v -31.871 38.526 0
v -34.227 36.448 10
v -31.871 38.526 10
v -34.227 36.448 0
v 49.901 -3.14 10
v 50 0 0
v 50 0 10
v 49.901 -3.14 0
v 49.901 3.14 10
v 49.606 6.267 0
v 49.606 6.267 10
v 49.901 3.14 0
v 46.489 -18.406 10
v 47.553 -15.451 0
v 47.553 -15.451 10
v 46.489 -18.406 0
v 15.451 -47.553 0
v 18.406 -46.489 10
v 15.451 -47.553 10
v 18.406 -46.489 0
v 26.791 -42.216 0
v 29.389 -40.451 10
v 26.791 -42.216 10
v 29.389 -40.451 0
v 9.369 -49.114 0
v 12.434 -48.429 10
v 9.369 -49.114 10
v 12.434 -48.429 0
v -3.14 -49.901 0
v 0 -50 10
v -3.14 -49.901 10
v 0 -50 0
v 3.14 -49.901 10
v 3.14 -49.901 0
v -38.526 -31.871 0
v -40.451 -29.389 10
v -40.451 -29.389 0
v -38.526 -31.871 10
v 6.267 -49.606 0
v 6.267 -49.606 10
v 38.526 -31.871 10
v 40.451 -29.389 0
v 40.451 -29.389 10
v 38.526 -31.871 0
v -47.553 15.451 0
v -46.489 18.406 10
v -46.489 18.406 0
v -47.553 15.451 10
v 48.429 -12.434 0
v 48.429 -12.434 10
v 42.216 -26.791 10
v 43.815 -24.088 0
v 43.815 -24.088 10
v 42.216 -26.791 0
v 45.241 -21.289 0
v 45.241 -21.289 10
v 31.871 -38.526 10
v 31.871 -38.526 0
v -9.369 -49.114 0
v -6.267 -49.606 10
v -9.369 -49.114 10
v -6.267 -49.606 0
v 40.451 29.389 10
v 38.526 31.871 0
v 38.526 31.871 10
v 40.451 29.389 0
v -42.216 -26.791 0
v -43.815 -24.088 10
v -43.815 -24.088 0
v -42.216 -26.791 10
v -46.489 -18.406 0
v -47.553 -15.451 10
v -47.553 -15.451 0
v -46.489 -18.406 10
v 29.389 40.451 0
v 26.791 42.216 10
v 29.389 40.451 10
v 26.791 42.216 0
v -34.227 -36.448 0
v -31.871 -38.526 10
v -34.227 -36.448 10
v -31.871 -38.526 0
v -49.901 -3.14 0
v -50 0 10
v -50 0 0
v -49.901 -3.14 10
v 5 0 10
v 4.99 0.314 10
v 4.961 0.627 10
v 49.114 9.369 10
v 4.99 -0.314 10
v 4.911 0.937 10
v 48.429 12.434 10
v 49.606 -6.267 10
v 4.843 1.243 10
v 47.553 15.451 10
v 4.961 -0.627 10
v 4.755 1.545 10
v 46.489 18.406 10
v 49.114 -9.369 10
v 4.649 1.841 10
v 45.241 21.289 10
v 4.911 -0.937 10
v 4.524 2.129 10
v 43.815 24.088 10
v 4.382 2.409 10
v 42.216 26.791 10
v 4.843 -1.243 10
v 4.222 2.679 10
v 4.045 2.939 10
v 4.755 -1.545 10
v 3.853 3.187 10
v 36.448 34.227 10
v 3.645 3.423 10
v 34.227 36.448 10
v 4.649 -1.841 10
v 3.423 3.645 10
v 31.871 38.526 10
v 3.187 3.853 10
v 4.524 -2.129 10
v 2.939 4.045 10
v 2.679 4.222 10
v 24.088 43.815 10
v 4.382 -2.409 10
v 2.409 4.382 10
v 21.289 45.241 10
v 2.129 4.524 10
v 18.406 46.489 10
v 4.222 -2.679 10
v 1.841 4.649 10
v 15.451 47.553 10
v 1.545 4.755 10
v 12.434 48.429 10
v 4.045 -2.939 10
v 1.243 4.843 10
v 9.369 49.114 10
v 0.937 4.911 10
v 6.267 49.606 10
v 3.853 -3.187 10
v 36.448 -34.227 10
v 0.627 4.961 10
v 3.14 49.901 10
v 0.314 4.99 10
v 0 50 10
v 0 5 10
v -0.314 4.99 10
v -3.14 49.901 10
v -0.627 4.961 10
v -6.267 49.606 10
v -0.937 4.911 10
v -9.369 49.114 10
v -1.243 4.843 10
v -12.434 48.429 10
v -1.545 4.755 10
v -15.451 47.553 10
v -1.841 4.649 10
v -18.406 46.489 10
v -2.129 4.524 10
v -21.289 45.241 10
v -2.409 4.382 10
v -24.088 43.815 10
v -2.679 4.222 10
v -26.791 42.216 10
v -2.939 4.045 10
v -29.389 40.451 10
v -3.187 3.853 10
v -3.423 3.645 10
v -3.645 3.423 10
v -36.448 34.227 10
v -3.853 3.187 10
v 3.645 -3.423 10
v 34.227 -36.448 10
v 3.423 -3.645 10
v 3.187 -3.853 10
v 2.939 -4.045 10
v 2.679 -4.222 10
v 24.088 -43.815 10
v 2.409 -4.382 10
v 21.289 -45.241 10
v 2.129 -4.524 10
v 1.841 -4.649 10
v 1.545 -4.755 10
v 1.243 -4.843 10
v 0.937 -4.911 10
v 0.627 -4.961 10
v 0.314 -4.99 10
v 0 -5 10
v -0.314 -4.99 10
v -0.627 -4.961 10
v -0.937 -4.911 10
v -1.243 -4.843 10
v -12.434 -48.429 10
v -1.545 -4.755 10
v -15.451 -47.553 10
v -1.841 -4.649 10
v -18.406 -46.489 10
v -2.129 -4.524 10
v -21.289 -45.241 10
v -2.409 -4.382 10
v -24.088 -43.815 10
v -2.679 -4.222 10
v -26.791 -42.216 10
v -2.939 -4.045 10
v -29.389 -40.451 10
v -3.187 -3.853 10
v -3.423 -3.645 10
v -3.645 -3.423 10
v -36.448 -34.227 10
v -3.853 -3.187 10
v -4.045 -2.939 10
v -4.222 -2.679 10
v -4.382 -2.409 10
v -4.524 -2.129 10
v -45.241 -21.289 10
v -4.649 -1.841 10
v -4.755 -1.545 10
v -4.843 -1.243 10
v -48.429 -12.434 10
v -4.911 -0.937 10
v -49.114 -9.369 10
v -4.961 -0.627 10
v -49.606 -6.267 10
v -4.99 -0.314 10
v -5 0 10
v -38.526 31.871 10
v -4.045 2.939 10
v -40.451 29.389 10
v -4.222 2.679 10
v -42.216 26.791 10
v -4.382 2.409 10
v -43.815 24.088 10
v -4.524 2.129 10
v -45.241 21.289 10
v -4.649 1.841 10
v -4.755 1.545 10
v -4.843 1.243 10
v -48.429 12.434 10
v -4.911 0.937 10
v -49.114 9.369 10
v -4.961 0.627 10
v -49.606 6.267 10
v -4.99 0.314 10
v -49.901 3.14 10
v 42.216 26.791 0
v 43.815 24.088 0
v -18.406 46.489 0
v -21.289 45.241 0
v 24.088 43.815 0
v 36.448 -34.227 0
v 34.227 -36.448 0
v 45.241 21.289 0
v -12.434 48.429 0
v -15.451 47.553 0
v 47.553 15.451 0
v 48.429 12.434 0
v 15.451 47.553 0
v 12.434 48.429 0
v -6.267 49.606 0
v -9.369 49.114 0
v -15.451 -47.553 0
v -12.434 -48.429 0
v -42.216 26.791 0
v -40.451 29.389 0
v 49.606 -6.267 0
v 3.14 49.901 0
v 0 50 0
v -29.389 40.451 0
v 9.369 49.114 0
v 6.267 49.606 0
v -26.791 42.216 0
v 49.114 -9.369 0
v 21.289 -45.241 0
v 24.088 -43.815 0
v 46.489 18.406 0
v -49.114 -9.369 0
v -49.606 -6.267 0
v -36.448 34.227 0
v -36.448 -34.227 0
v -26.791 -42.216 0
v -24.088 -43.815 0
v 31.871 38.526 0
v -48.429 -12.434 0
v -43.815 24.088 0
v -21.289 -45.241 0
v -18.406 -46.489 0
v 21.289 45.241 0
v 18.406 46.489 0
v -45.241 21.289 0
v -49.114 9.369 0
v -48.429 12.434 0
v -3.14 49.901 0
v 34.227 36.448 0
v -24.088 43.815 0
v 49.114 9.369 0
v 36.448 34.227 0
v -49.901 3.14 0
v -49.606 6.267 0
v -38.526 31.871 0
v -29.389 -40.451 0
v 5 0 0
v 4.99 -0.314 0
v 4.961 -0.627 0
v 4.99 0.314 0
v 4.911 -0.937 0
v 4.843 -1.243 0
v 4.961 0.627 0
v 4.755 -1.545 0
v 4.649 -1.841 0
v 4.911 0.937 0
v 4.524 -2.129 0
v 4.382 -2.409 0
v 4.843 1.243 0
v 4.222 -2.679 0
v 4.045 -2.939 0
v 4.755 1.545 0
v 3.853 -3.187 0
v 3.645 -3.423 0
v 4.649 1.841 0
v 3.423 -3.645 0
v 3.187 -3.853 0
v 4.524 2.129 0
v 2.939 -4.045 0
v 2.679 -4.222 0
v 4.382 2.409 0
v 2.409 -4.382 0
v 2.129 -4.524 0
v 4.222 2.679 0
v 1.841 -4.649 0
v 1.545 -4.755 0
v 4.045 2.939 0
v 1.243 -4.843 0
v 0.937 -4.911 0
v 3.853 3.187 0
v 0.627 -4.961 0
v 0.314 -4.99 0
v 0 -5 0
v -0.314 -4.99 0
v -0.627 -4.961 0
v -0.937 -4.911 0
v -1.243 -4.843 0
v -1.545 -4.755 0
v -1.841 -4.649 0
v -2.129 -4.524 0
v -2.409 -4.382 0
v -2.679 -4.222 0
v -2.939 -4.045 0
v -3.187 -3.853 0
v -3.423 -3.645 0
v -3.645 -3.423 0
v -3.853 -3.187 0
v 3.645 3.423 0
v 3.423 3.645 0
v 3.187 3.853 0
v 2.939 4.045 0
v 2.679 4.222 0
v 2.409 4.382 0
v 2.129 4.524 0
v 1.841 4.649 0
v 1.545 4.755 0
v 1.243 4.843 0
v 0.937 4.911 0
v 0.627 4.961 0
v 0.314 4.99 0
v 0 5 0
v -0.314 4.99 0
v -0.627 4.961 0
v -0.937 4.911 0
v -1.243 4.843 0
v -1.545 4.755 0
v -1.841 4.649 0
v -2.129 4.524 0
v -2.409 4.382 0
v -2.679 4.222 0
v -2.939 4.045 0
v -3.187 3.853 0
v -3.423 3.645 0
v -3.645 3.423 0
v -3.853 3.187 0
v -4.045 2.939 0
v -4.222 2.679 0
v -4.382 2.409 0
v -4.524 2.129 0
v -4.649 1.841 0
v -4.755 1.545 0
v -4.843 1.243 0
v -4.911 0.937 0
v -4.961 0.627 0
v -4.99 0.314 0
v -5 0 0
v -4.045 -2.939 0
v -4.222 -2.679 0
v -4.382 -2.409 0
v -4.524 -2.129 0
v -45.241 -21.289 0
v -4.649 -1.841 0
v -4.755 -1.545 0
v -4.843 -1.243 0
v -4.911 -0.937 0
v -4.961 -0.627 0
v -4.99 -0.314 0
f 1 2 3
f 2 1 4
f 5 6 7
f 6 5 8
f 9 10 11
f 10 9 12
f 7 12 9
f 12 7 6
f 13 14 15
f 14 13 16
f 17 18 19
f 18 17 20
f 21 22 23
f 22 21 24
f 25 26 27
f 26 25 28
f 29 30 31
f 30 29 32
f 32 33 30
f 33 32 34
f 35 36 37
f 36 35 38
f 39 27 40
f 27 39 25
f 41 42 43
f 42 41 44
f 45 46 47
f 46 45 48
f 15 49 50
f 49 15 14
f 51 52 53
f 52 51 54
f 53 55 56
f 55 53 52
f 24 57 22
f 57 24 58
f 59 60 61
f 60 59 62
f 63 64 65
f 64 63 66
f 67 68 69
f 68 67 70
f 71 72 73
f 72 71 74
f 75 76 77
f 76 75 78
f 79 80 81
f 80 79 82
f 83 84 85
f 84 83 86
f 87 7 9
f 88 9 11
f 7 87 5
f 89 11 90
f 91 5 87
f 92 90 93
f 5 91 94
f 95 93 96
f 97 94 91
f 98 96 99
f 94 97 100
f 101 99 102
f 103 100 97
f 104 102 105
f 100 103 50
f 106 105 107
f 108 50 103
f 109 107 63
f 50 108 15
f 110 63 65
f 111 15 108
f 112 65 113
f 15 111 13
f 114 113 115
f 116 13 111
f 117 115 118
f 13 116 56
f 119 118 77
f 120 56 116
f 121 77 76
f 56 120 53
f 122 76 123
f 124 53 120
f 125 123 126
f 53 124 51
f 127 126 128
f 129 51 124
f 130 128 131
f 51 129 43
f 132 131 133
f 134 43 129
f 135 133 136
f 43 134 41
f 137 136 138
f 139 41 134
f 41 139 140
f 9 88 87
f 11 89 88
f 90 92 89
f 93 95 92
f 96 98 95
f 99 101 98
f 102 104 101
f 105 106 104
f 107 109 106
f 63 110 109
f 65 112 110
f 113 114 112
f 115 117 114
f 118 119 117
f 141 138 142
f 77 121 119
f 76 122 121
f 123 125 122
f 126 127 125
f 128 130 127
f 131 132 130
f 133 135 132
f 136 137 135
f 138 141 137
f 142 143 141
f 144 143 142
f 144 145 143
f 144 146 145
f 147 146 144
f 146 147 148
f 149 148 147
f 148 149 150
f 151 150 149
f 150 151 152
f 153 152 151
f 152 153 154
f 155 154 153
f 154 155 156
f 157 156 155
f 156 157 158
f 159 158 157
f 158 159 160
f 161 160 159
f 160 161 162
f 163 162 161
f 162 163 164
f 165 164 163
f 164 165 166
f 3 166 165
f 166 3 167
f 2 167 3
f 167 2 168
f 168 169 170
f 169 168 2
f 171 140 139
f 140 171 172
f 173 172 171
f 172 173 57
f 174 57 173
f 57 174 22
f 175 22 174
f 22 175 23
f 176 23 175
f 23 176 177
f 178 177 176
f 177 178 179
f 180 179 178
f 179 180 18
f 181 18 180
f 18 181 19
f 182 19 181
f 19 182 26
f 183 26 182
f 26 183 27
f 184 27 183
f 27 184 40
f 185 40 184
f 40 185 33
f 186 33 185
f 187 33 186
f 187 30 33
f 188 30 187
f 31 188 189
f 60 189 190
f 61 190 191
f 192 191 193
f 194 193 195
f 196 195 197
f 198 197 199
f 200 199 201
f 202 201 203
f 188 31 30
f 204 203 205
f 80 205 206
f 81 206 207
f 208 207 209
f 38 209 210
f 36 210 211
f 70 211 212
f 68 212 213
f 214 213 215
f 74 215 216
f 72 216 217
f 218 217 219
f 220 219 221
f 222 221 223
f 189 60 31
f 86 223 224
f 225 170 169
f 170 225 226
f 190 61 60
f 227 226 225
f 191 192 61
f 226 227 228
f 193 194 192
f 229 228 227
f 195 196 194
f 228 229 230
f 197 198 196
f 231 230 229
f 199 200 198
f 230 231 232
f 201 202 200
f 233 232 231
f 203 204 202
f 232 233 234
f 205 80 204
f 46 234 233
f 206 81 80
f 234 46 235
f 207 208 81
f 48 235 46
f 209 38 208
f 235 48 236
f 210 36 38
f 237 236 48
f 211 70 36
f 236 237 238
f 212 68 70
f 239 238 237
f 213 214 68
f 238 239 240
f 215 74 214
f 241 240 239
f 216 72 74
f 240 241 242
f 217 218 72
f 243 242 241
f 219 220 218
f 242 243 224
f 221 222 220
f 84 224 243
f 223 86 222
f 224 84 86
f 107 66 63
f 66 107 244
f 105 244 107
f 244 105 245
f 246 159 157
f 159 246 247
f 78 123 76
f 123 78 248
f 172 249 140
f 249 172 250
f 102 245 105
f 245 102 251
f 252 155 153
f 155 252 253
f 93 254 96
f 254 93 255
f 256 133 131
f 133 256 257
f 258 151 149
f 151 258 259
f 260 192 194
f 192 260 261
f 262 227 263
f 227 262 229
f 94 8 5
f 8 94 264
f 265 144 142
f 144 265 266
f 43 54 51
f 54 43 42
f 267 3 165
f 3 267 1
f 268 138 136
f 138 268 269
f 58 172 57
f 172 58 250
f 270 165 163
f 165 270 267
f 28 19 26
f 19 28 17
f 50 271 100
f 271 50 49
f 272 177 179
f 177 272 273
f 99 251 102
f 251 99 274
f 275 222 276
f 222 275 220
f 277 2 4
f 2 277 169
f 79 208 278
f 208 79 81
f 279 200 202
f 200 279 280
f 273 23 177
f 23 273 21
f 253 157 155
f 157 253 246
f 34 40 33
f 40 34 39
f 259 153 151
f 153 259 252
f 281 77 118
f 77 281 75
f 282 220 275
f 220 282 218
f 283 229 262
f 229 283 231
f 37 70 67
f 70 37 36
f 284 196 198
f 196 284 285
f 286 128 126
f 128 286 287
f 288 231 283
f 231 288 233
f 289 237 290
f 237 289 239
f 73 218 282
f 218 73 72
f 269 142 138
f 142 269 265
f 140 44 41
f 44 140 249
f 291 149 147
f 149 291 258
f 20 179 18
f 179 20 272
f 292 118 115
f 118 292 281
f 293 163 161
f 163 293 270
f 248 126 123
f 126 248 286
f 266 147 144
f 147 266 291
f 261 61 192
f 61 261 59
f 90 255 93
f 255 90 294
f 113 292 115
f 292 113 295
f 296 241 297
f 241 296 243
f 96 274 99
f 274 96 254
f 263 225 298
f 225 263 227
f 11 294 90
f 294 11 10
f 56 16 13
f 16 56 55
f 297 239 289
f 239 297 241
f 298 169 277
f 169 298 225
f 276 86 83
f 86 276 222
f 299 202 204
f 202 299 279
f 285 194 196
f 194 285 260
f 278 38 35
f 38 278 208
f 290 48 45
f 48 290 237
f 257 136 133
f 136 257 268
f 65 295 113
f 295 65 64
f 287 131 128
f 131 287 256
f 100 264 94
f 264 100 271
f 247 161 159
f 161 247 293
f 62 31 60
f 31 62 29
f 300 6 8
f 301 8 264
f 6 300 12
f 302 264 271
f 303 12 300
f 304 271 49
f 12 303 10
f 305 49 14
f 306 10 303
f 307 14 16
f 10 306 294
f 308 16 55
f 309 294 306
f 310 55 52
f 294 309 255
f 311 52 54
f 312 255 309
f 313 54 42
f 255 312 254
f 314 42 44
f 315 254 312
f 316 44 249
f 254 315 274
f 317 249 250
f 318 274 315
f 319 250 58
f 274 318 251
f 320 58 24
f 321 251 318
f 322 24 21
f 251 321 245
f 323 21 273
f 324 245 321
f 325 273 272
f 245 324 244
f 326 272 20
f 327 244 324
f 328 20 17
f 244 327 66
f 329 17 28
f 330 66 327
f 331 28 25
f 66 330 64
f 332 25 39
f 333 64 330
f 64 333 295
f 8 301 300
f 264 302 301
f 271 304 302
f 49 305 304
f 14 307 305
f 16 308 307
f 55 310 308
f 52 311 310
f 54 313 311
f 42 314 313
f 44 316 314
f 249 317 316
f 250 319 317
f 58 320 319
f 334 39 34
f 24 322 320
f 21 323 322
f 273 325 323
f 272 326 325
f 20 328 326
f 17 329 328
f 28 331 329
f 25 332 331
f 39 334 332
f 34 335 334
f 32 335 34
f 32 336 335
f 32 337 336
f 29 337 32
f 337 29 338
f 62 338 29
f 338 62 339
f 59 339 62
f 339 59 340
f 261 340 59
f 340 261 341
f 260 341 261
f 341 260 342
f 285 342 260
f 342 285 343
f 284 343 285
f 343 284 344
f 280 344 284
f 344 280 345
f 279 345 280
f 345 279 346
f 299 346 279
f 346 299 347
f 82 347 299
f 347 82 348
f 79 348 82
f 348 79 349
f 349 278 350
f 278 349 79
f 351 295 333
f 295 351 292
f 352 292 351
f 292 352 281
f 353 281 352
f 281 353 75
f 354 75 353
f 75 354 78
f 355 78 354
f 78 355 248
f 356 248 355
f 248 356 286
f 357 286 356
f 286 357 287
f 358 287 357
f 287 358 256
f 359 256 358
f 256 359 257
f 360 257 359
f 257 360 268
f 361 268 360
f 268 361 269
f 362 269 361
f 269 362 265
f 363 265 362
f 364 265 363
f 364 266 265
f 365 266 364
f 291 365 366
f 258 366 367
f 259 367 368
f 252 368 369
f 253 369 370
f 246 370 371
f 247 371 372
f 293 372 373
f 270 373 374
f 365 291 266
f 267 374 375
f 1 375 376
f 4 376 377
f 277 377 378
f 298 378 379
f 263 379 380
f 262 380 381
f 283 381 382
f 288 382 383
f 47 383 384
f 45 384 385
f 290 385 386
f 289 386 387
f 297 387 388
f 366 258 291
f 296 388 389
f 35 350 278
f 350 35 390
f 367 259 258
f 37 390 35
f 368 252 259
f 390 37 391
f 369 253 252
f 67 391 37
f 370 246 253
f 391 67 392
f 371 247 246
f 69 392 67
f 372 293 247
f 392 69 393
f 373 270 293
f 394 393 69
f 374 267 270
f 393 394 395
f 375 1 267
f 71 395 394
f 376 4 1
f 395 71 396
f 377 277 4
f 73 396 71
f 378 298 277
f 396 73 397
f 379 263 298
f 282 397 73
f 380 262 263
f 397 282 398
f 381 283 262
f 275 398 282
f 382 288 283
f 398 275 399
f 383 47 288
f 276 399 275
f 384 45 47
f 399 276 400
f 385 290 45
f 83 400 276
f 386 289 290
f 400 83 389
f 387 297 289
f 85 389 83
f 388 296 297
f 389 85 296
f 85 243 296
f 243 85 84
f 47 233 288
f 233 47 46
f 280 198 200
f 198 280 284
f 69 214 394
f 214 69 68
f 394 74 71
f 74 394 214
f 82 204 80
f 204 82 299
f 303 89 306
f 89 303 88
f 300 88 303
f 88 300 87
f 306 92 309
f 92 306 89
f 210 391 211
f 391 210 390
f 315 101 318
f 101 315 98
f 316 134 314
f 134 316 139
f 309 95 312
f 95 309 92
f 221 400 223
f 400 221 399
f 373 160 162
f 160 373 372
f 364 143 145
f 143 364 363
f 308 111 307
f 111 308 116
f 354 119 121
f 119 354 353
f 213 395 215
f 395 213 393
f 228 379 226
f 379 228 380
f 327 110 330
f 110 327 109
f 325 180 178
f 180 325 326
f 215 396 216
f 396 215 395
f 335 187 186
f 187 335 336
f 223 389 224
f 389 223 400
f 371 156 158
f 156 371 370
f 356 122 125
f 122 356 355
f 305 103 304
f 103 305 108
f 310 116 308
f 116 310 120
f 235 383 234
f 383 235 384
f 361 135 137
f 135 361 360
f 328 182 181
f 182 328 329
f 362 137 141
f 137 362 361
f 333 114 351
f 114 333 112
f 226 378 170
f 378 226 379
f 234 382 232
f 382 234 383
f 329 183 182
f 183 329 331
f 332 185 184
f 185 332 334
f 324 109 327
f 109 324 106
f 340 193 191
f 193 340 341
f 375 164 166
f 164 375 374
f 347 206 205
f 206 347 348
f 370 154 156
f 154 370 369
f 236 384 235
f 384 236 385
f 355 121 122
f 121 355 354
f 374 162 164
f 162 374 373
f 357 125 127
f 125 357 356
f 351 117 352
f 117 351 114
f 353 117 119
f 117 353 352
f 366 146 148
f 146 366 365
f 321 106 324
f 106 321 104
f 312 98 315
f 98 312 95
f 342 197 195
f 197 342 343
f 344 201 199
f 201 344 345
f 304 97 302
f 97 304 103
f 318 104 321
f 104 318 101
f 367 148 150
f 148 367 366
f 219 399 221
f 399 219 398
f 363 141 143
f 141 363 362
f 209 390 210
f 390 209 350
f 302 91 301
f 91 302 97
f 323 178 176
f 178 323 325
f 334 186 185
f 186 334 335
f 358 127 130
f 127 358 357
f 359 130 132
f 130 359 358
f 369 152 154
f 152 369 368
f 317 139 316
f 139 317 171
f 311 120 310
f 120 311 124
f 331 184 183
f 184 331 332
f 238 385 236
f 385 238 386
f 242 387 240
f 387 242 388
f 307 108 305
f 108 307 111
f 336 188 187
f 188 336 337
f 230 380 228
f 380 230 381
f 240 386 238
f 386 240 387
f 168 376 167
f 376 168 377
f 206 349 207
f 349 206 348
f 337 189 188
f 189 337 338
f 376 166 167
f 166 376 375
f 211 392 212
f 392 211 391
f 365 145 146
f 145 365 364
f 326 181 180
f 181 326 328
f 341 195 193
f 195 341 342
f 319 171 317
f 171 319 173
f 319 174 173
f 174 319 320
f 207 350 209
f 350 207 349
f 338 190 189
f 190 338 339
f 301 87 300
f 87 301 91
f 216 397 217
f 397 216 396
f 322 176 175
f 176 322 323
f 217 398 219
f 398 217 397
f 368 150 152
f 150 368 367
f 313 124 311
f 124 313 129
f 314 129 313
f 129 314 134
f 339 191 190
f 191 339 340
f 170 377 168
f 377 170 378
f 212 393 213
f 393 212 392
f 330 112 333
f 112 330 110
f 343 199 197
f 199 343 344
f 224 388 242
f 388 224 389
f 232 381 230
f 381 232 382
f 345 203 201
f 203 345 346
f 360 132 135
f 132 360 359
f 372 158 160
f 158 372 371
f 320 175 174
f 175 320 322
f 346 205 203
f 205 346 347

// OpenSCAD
// Wheel parameters
radius = 50;
thickness = 10;
num_spokes = 6;
spoke_width = 5;
hole_radius = 5;

module wheel() {
  difference() {
    cylinder(h = thickness, r = radius, $fn = 100);
    translate([0, 0, -0.1])
    cylinder(h = thickness + 0.2, r = hole_radius, $fn = 100);
  }
}

wheel();
